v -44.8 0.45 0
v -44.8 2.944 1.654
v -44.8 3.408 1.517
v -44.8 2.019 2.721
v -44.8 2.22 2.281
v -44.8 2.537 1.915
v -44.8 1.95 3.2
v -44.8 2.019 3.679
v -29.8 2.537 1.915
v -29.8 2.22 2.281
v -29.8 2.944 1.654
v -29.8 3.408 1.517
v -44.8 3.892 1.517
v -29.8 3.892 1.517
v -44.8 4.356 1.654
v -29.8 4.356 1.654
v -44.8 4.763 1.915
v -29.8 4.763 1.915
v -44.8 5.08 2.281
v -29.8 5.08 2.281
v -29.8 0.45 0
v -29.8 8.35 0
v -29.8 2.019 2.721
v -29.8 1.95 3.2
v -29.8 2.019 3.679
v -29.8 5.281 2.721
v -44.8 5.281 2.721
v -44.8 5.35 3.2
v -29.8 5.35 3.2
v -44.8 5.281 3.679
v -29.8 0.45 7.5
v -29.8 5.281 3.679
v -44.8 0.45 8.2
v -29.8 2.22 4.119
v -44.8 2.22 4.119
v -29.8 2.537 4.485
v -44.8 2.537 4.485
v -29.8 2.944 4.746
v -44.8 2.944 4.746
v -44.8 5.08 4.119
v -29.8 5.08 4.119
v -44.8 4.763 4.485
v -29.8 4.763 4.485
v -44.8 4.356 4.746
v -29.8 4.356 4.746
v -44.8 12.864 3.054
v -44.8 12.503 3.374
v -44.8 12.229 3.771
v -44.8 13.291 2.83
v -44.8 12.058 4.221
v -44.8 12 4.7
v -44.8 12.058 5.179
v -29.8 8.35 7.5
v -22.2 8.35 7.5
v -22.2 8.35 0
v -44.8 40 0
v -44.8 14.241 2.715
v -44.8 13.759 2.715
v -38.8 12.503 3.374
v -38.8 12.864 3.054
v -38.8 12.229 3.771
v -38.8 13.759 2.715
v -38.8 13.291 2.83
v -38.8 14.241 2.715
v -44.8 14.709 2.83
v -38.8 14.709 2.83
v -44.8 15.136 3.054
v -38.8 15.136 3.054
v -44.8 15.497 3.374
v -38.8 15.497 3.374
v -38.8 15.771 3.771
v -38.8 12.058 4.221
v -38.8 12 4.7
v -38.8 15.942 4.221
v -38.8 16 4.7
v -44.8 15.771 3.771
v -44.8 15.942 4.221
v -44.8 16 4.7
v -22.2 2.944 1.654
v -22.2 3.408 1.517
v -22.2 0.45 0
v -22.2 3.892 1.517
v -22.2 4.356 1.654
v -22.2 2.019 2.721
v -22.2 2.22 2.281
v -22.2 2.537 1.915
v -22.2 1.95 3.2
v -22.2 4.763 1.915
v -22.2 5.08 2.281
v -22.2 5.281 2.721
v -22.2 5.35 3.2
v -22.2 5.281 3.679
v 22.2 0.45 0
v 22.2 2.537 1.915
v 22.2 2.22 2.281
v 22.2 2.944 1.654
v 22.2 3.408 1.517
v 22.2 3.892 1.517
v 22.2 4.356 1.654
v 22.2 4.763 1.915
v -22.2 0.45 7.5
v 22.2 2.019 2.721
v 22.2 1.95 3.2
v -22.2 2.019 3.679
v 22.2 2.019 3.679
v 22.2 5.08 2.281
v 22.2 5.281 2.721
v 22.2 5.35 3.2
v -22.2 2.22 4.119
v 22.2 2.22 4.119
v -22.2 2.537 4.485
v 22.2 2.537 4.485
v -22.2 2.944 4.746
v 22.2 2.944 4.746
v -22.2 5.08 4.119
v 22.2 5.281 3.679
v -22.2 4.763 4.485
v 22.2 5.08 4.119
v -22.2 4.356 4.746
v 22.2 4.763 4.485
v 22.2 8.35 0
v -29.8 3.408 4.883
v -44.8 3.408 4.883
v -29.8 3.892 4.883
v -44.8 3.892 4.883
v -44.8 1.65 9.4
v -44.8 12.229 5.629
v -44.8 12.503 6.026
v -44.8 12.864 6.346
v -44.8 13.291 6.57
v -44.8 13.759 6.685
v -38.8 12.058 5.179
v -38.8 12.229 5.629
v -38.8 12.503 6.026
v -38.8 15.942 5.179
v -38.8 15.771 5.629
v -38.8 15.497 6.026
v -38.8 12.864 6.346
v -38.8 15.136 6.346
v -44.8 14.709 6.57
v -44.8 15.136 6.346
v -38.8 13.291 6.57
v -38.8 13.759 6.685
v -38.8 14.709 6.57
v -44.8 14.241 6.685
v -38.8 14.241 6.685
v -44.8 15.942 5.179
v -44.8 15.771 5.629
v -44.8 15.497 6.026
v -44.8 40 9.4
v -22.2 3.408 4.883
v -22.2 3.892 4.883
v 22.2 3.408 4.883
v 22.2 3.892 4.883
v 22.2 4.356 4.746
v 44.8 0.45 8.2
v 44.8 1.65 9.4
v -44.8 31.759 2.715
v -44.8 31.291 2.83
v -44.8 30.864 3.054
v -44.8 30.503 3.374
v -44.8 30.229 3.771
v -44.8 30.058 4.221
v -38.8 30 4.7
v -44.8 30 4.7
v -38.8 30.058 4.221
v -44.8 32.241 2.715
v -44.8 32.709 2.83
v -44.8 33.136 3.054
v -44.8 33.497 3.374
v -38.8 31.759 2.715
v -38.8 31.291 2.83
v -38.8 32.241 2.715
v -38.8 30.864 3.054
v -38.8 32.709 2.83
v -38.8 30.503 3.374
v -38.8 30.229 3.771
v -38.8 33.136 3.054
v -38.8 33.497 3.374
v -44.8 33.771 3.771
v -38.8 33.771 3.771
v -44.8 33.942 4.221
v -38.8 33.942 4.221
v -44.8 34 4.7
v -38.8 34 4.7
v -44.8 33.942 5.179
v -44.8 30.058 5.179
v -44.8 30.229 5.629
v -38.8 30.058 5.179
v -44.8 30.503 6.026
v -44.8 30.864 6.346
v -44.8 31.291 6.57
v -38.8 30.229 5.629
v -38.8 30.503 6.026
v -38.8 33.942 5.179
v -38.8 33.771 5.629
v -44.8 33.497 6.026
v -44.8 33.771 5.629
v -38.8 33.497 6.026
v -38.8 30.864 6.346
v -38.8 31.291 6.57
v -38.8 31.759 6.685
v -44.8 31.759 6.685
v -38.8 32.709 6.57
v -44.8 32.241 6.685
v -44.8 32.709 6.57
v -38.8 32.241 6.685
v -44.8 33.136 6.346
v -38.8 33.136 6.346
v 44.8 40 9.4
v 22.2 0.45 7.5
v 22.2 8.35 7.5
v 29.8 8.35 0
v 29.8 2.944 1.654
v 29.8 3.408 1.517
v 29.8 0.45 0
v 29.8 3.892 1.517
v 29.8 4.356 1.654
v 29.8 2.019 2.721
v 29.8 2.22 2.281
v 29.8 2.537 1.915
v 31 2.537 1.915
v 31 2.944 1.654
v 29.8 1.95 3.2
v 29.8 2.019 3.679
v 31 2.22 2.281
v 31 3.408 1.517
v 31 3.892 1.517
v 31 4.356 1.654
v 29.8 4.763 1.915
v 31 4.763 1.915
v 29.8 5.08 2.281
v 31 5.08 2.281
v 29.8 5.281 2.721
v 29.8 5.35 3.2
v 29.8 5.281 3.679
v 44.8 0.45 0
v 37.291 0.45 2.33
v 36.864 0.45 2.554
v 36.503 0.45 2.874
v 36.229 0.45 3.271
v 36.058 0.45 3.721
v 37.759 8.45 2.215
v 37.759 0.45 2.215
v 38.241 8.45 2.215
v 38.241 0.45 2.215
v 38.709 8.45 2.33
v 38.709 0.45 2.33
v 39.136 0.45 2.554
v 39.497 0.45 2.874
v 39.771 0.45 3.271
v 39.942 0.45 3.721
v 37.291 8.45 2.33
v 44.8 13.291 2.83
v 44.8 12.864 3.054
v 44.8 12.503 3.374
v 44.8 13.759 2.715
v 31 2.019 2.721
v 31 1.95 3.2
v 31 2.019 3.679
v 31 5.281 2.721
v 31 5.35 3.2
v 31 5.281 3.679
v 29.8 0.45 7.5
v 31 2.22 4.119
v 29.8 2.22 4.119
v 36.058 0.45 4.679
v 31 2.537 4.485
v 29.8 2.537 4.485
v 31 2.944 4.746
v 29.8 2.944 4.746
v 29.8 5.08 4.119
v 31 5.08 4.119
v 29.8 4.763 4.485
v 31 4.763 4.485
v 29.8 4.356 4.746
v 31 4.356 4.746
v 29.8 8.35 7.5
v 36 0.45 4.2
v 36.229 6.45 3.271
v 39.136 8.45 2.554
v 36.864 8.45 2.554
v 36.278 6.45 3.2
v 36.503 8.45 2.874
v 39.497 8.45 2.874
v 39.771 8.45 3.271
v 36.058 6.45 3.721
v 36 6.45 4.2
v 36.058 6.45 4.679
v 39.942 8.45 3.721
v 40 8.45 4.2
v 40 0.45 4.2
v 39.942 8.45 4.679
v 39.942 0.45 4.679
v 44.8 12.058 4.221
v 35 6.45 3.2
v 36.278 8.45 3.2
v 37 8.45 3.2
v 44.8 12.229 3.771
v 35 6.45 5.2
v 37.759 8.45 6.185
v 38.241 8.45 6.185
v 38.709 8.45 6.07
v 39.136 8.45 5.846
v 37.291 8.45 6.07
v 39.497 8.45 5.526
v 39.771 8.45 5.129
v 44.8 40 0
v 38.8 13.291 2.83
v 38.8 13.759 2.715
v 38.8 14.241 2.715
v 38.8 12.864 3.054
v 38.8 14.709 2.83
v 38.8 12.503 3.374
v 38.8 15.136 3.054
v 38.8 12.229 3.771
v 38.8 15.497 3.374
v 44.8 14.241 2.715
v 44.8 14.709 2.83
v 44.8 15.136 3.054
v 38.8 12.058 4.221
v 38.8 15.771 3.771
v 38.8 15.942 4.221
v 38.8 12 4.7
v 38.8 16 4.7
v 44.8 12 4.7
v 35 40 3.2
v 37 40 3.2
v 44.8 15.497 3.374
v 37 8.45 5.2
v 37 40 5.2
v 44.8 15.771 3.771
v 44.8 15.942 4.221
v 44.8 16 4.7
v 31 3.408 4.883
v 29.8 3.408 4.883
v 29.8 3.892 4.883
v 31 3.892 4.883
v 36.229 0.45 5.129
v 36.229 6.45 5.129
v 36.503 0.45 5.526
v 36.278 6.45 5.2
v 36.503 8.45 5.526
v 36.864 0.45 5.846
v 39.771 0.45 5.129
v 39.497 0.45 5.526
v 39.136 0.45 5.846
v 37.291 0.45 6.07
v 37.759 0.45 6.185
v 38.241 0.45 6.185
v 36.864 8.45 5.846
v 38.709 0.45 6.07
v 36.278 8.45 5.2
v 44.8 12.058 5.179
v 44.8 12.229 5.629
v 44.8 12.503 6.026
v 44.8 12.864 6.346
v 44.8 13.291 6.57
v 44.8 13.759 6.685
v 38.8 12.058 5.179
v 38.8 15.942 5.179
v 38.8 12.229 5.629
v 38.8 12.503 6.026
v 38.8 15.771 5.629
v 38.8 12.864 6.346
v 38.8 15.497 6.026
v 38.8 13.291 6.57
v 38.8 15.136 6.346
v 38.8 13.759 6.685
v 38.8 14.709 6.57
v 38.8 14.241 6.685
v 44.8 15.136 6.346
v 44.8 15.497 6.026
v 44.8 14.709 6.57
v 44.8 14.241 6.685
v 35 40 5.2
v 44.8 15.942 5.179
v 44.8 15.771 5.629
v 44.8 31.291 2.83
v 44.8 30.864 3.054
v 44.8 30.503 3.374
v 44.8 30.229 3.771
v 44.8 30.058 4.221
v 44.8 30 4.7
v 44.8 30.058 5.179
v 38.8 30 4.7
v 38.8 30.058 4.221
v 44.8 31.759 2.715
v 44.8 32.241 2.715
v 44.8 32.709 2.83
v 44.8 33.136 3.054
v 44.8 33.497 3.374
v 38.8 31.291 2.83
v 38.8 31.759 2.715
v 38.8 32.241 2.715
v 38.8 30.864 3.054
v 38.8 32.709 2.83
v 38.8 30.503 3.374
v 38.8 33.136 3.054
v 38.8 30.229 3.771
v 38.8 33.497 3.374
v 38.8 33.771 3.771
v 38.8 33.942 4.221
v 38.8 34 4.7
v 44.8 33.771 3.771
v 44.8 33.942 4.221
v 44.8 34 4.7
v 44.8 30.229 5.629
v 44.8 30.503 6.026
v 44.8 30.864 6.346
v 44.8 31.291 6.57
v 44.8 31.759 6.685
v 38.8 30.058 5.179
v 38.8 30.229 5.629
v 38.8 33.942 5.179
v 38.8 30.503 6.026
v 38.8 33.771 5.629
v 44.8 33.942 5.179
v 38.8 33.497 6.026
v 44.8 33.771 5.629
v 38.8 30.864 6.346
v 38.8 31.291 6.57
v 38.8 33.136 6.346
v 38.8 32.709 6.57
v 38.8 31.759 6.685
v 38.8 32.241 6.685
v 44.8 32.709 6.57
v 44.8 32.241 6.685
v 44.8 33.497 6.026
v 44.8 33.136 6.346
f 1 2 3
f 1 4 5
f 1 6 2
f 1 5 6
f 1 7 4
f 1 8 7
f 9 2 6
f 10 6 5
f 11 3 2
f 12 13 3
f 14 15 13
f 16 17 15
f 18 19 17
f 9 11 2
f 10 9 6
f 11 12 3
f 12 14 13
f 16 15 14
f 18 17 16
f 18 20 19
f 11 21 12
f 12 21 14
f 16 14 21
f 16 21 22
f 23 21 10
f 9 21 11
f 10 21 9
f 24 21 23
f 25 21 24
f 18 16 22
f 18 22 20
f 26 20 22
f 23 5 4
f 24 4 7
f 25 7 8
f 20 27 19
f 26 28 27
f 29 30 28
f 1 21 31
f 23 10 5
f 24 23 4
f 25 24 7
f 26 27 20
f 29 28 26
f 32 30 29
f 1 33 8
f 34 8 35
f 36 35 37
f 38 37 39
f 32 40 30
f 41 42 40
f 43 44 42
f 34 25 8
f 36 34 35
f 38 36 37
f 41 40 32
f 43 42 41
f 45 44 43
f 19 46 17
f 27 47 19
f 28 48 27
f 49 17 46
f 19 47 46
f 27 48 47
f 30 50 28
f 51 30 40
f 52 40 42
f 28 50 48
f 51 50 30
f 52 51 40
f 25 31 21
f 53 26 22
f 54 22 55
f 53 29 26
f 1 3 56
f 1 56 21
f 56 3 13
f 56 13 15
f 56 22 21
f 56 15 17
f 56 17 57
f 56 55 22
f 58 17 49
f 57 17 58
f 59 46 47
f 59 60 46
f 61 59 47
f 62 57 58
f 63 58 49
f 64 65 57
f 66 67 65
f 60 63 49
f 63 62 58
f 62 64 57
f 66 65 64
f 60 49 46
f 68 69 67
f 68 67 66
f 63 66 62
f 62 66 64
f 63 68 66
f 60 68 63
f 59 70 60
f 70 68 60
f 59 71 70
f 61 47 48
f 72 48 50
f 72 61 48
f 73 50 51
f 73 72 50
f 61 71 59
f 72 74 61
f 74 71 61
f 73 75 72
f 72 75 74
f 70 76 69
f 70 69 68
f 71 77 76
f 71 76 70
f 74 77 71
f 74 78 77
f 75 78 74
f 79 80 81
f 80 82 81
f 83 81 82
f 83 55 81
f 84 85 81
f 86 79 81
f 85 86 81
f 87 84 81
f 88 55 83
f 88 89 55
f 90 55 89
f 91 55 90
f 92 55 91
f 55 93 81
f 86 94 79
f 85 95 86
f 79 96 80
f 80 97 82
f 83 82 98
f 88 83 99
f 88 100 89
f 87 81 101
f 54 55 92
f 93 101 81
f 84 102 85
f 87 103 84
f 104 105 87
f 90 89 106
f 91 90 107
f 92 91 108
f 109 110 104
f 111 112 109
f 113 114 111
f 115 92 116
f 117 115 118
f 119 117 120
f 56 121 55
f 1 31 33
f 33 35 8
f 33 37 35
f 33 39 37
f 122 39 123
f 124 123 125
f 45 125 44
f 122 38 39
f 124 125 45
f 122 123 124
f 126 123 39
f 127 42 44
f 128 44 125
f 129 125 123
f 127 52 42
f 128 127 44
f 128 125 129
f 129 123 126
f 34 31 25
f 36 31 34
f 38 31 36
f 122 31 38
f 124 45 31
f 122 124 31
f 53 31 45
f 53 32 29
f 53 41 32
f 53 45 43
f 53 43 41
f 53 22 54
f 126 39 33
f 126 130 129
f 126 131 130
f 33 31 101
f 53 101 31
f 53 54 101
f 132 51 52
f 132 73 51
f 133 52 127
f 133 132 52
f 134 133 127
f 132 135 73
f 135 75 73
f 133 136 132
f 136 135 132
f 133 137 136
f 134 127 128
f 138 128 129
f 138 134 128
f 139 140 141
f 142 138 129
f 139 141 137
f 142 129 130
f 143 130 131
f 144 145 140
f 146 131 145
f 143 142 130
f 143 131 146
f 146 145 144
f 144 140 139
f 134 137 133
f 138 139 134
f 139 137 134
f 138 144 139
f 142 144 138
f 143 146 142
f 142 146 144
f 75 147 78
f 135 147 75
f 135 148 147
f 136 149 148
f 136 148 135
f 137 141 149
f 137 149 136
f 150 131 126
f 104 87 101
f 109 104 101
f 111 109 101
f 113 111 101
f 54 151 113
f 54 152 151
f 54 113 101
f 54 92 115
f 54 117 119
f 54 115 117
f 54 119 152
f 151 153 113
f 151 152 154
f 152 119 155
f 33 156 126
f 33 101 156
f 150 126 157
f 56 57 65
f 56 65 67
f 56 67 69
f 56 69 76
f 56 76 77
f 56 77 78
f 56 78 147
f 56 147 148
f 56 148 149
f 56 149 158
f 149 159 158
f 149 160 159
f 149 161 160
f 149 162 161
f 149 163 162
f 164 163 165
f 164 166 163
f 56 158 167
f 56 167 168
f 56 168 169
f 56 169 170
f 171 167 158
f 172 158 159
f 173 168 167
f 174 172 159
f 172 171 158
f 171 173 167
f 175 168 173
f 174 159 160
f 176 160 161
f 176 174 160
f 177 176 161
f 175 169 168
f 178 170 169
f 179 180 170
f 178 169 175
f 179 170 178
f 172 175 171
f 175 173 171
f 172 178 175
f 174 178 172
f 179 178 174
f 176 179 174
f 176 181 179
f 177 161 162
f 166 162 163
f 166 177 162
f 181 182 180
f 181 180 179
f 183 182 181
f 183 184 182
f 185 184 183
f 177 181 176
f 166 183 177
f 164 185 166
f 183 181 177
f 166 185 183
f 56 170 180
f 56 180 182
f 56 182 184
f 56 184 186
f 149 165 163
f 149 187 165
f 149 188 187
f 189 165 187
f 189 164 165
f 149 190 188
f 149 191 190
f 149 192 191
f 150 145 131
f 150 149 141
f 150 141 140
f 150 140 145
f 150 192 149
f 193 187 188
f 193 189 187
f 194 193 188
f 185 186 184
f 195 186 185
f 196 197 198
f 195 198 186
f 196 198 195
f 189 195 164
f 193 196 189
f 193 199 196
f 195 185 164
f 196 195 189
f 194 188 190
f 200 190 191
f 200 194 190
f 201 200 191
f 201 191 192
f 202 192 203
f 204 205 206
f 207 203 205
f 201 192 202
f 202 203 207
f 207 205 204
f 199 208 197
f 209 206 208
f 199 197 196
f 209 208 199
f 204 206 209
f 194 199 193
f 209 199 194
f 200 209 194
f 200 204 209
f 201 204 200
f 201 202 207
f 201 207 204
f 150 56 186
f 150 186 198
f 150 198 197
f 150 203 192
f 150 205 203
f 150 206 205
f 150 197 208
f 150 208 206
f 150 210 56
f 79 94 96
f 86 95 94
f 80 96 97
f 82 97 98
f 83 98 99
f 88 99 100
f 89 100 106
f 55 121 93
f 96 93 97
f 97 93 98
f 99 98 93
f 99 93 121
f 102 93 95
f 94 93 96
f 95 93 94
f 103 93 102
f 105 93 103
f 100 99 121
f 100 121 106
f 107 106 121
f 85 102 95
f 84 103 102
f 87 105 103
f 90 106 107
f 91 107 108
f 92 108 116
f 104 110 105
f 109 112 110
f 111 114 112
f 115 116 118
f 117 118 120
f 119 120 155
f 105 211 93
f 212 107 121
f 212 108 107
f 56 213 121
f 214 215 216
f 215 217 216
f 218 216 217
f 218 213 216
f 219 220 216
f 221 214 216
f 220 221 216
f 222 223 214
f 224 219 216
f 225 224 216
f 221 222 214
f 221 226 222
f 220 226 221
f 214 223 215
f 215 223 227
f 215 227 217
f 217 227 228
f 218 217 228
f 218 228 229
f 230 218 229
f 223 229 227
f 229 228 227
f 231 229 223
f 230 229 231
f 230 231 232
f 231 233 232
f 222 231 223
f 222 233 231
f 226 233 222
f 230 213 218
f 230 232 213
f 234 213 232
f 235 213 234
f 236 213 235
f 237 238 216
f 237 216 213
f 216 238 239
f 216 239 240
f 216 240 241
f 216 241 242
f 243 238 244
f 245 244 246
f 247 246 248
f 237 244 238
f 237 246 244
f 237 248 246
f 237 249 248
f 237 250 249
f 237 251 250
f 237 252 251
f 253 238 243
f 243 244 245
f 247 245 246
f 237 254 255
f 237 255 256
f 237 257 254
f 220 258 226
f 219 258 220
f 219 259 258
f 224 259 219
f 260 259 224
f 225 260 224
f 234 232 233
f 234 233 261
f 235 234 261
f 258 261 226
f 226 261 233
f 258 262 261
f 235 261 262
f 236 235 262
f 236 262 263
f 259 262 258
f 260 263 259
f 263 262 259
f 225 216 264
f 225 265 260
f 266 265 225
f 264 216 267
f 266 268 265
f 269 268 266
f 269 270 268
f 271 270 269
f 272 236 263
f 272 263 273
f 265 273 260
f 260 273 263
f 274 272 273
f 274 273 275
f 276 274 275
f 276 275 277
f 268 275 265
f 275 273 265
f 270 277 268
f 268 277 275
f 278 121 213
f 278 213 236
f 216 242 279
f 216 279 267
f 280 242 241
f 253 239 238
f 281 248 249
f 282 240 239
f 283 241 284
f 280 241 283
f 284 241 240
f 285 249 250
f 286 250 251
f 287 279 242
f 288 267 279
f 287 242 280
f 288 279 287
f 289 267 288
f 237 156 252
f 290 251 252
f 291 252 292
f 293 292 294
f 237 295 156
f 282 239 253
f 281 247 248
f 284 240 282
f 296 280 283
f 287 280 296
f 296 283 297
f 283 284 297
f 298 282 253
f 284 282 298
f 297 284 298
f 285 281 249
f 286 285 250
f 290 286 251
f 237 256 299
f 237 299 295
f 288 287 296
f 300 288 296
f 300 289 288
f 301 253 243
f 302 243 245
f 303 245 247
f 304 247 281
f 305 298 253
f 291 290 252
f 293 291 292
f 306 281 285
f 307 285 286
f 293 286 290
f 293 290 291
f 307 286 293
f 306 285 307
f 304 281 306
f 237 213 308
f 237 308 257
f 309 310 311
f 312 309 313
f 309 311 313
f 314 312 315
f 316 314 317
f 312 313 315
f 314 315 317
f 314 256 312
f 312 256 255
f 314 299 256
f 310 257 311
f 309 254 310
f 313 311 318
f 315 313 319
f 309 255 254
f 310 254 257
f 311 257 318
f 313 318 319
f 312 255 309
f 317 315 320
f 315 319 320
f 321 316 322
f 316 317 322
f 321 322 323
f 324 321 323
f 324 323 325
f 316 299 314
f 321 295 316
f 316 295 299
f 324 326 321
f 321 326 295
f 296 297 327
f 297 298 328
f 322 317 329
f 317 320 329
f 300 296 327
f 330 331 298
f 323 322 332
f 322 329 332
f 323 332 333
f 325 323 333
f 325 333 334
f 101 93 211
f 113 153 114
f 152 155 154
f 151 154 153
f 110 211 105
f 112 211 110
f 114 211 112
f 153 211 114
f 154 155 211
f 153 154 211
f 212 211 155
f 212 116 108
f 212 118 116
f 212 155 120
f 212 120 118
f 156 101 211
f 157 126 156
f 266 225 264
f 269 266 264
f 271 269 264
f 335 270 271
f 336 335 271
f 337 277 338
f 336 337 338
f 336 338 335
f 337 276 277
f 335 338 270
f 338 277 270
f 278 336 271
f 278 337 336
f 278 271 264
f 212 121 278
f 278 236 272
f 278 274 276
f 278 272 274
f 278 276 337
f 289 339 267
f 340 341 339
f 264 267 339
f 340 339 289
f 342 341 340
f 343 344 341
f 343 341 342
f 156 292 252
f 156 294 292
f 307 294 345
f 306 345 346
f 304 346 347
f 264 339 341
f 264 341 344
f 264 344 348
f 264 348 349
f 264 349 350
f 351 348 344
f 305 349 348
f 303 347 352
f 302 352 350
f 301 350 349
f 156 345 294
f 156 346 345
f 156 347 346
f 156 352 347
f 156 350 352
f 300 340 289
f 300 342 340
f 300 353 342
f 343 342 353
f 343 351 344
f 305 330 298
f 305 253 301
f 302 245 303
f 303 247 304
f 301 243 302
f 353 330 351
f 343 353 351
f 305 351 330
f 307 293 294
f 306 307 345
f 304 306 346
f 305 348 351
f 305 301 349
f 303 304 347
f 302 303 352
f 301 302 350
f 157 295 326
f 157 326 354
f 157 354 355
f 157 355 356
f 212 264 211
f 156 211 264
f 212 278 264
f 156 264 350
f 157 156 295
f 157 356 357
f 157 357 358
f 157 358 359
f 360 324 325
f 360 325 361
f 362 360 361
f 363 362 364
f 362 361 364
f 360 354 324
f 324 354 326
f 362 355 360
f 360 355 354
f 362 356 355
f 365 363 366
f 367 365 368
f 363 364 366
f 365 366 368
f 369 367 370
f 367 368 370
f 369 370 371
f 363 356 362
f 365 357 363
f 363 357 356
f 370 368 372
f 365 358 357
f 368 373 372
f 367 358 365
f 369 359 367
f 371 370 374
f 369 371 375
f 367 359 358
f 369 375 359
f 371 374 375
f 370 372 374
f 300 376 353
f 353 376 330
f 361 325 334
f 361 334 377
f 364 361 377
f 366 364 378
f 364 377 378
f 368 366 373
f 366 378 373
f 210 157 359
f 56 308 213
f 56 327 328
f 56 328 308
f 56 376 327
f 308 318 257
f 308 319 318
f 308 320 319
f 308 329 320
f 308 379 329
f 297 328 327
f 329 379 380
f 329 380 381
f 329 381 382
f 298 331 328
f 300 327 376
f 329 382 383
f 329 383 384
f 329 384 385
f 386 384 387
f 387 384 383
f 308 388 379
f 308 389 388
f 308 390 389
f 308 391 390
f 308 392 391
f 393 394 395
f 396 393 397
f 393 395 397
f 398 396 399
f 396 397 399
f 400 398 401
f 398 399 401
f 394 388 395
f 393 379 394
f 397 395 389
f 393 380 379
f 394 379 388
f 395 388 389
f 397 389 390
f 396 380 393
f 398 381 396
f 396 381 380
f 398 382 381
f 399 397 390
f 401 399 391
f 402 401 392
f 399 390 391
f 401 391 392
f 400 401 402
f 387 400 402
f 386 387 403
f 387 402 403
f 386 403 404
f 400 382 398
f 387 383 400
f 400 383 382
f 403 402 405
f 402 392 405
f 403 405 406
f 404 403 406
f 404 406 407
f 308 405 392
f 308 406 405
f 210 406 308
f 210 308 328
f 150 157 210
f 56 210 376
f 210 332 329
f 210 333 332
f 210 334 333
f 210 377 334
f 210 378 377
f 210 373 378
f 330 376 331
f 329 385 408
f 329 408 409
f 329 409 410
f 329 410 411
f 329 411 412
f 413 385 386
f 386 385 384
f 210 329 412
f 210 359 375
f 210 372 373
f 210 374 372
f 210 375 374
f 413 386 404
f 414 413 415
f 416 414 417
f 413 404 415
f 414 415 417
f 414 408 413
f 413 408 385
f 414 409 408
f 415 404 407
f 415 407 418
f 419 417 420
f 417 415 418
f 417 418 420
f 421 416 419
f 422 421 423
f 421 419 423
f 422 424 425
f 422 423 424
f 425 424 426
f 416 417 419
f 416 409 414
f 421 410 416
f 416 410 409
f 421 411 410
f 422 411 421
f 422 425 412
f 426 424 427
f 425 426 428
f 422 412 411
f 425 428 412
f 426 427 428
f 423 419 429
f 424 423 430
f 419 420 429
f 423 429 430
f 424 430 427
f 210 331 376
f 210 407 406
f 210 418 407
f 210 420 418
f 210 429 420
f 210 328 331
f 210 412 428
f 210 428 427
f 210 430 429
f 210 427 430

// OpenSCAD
// file: lib/lib.scad
// Shared helpers. Include AFTER params.scad (needs TOL, M3_* etc.).
$fa = 4; $fs = 0.5;

module rrect(size, r) {            // 2D rounded rectangle, centred
    r2 = min(r, min(size[0], size[1]) / 2 - 0.001);
    offset(r = r2) square([size[0] - 2 * r2, size[1] - 2 * r2], center = true);
}
module rbox(size, r, center_xy = true) {   // box with rounded vertical edges
    translate(center_xy ? [0, 0, 0] : [size[0] / 2, size[1] / 2, 0])
        linear_extrude(size[2]) rrect([size[0], size[1]], r);
}
module rbox_at(x0, x1, y0, y1, z0, z1, r = 0.01) {
    translate([(x0 + x1) / 2, (y0 + y1) / 2, z0]) rbox([x1 - x0, y1 - y0, z1 - z0], r);
}
module box_at(x0, x1, y0, y1, z0, z1) { translate([x0, y0, z0]) cube([x1 - x0, y1 - y0, z1 - z0]); }

module ring(ro, ri, h) { difference() { cylinder(r = ro, h = h); translate([0, 0, -1]) cylinder(r = ri, h = h + 2); } }
module ring_sector(ro, ri, h, a0, a1) {
    intersection() {
        ring(ro, ri, h);
        linear_extrude(h) polygon(concat([[0, 0]], [for (a = [a0 : (a1 - a0) / 24 : a1]) 2 * ro * [cos(a), sin(a)]]));
    }
}
// teardrop hole along an axis lying horizontal (axis = Y after rotation), printable w/o support
module teardrop2d(d) { union() { circle(d = d); rotate(45) square(d / 2); } }
// vertical heat-set insert hole, opening at z=0 going +z (depth l)
module insert_hole(l = M3_INSERT_L) { translate([0, 0, -EPS]) cylinder(d = M3_INSERT_D, h = l + EPS); }
module m3_clear(l) { translate([0, 0, -EPS]) cylinder(d = M3_CLEAR, h = l + 2 * EPS); }
module m3_csk(l) {  // countersunk clearance from z=0 upward, head at z=0 side
    translate([0, 0, -EPS]) { cylinder(d = M3_CLEAR, h = l + 2 * EPS); cylinder(d1 = 6.4, d2 = M3_CLEAR, h = 1.7); }
}
module card2d() { rrect([CARD_L, CARD_W], CARD_R); }
module card_at(cy, z) { translate([0, cy, z]) linear_extrude(CARD_T) card2d(); }

// ---- gears ----
function _inv(a) = tan(a) - a * PI_ / 180;           // involute function, a in deg
function _invpt(rb, r, ang0, s) = let(al = acos(rb / r), th = ang0 - s * (_inv(al) * 180 / PI_)) [r * cos(th), r * sin(th)];
module involute_gear2d(m, z, pa = 20, clearance = 0.05) {
    rp = m * z / 2; rb = rp * cos(pa); ra = rp + m - clearance; rf = rp - 1.25 * m;
    half = 90 / z + _inv(pa) * 180 / PI_;            // tooth half-angle at base (deg)
    n = 8;
    rs = [for (i = [0 : n]) max(rb, rf) + (ra - max(rb, rf)) * i / n];
    union() {
        circle(r = rf, $fn = z * 4);
        for (k = [0 : z - 1]) rotate(k * 360 / z) polygon(concat(
            [[rf * cos(-half), rf * sin(-half)]],
            [for (r = rs) let(p = _invpt(rb, r, half, 1)) [p[0], -p[1]]],
            [for (i = [n : -1 : 0]) _invpt(rb, rs[i], half, 1)],
            [[rf * cos(half), rf * sin(half)]]));
    }
}
// straight gear rack (2D in XY: teeth along +x, pointing -y, pitch line at y=0)
module gear_rack2d(m, len, back = 3) {
    p = PI_ * m; ad = m; de = 1.25 * m; t = tan(20);
    n = ceil(len / p) + 1;
    intersection() {
        union() {
            translate([0, de]) square([len, back]);
            for (i = [0 : n]) translate([i * p - p / 4, 0]) polygon([
                [-(p / 4 + de * t), de + 0.01], [p / 4 + de * t + 0.01, de + 0.01],
                [p / 4 - ad * t, -ad], [-(p / 4 - ad * t), -ad] ]);
        }
        translate([0, -ad - 1]) square([len, ad + de + back + 2]);
    }
}
// GT2 belt-tooth profile ring (teeth outward), 2D
module gt2_ring2d(n, r_land, ri) {
    union() {
        difference() { circle(r = r_land + 0.01, $fn = n * 2); circle(r = ri, $fn = n * 2); }
        for (k = [0 : n - 1]) rotate(k * 360 / n)
            translate([r_land, 0]) hull() { translate([-0.2, 0]) square([0.2, 1.0], center = true); translate([0.25, 0]) circle(r = 0.5, $fn = 12); }
    }
}
// main file
// Hopper gate (D-18): sets the single-card throat (THROAT above the floor) at its back
// edge and is the bearing for the driven pinch shaft (Ø7 rollers, X +-26, 0.15 mm rubber
// squeeze) that pushes the card home. Fixed position (gear mesh); change THROAT by reprinting.
// Carries the load IR emitter.
// Print: lying on its back face (Y), no supports.
include <params.scad>
include <lib/lib.scad>
GATE_H = 40;
module hopper_gate() difference() {
    box_at(-HOP_XI + GAP, HOP_XI - GAP, HOP_YI0, HOP_Y_FRONT, Z_LOAD + THROAT, Z_LOAD + GATE_H);
    // roller cavities, open to the front and bottom
    for (s = [-1, 1]) translate([s * PINCH_X, 0, 0]) box_at(-PINCH_W / 2 - 4 * GAP, PINCH_W / 2 + 4 * GAP, PINCH_Y - PINCH_D / 2 - 4 * GAP, HOP_Y_FRONT + 1, Z_LOAD - 1, PINCH_Z + PINCH_D / 2 + 1.2);
    // pinch shaft bore: fixed (exact gear centre distance); rubber gives the pinch compliance
    translate([SHAFT_X0 - 1, PINCH_Y, PINCH_Z]) rotate([0, 90, 0]) cylinder(d = fit_free(SHAFT_D), h = PINCH_X1 - SHAFT_X0 + 2);
    // load IR emitter pocket + lead channel
    translate([LOADIR_X, LOADIR_Y, Z_LOAD + THROAT - 1]) cylinder(d = fit_slide(3.8), h = 9);   // emitter bore (glued), no thin lip
    translate([LOADIR_X, LOADIR_Y, Z_LOAD + THROAT + 6]) box_at(-3, -1, -1, 1, 0, 40);   // lead channel, clear of the gate-screw insert
    for (s = [-1, 1], z = [14, 32]) translate([s * (HOP_XI - GAP), GATE_YC, Z_LOAD + z]) rotate([0, -s * 90, 0]) insert_hole();
    translate([0, HOP_YI0, Z_LOAD + THROAT]) rotate([0, 90, 0]) cylinder(r = 1.2, h = 100, center = true, $fn = 4); // lead-in chamfer
}
module hopper_gate_print() rotate([-90, 0, 0]) translate([0, -HOP_Y_FRONT, -Z_LOAD]) hopper_gate();
hopper_gate_print();
